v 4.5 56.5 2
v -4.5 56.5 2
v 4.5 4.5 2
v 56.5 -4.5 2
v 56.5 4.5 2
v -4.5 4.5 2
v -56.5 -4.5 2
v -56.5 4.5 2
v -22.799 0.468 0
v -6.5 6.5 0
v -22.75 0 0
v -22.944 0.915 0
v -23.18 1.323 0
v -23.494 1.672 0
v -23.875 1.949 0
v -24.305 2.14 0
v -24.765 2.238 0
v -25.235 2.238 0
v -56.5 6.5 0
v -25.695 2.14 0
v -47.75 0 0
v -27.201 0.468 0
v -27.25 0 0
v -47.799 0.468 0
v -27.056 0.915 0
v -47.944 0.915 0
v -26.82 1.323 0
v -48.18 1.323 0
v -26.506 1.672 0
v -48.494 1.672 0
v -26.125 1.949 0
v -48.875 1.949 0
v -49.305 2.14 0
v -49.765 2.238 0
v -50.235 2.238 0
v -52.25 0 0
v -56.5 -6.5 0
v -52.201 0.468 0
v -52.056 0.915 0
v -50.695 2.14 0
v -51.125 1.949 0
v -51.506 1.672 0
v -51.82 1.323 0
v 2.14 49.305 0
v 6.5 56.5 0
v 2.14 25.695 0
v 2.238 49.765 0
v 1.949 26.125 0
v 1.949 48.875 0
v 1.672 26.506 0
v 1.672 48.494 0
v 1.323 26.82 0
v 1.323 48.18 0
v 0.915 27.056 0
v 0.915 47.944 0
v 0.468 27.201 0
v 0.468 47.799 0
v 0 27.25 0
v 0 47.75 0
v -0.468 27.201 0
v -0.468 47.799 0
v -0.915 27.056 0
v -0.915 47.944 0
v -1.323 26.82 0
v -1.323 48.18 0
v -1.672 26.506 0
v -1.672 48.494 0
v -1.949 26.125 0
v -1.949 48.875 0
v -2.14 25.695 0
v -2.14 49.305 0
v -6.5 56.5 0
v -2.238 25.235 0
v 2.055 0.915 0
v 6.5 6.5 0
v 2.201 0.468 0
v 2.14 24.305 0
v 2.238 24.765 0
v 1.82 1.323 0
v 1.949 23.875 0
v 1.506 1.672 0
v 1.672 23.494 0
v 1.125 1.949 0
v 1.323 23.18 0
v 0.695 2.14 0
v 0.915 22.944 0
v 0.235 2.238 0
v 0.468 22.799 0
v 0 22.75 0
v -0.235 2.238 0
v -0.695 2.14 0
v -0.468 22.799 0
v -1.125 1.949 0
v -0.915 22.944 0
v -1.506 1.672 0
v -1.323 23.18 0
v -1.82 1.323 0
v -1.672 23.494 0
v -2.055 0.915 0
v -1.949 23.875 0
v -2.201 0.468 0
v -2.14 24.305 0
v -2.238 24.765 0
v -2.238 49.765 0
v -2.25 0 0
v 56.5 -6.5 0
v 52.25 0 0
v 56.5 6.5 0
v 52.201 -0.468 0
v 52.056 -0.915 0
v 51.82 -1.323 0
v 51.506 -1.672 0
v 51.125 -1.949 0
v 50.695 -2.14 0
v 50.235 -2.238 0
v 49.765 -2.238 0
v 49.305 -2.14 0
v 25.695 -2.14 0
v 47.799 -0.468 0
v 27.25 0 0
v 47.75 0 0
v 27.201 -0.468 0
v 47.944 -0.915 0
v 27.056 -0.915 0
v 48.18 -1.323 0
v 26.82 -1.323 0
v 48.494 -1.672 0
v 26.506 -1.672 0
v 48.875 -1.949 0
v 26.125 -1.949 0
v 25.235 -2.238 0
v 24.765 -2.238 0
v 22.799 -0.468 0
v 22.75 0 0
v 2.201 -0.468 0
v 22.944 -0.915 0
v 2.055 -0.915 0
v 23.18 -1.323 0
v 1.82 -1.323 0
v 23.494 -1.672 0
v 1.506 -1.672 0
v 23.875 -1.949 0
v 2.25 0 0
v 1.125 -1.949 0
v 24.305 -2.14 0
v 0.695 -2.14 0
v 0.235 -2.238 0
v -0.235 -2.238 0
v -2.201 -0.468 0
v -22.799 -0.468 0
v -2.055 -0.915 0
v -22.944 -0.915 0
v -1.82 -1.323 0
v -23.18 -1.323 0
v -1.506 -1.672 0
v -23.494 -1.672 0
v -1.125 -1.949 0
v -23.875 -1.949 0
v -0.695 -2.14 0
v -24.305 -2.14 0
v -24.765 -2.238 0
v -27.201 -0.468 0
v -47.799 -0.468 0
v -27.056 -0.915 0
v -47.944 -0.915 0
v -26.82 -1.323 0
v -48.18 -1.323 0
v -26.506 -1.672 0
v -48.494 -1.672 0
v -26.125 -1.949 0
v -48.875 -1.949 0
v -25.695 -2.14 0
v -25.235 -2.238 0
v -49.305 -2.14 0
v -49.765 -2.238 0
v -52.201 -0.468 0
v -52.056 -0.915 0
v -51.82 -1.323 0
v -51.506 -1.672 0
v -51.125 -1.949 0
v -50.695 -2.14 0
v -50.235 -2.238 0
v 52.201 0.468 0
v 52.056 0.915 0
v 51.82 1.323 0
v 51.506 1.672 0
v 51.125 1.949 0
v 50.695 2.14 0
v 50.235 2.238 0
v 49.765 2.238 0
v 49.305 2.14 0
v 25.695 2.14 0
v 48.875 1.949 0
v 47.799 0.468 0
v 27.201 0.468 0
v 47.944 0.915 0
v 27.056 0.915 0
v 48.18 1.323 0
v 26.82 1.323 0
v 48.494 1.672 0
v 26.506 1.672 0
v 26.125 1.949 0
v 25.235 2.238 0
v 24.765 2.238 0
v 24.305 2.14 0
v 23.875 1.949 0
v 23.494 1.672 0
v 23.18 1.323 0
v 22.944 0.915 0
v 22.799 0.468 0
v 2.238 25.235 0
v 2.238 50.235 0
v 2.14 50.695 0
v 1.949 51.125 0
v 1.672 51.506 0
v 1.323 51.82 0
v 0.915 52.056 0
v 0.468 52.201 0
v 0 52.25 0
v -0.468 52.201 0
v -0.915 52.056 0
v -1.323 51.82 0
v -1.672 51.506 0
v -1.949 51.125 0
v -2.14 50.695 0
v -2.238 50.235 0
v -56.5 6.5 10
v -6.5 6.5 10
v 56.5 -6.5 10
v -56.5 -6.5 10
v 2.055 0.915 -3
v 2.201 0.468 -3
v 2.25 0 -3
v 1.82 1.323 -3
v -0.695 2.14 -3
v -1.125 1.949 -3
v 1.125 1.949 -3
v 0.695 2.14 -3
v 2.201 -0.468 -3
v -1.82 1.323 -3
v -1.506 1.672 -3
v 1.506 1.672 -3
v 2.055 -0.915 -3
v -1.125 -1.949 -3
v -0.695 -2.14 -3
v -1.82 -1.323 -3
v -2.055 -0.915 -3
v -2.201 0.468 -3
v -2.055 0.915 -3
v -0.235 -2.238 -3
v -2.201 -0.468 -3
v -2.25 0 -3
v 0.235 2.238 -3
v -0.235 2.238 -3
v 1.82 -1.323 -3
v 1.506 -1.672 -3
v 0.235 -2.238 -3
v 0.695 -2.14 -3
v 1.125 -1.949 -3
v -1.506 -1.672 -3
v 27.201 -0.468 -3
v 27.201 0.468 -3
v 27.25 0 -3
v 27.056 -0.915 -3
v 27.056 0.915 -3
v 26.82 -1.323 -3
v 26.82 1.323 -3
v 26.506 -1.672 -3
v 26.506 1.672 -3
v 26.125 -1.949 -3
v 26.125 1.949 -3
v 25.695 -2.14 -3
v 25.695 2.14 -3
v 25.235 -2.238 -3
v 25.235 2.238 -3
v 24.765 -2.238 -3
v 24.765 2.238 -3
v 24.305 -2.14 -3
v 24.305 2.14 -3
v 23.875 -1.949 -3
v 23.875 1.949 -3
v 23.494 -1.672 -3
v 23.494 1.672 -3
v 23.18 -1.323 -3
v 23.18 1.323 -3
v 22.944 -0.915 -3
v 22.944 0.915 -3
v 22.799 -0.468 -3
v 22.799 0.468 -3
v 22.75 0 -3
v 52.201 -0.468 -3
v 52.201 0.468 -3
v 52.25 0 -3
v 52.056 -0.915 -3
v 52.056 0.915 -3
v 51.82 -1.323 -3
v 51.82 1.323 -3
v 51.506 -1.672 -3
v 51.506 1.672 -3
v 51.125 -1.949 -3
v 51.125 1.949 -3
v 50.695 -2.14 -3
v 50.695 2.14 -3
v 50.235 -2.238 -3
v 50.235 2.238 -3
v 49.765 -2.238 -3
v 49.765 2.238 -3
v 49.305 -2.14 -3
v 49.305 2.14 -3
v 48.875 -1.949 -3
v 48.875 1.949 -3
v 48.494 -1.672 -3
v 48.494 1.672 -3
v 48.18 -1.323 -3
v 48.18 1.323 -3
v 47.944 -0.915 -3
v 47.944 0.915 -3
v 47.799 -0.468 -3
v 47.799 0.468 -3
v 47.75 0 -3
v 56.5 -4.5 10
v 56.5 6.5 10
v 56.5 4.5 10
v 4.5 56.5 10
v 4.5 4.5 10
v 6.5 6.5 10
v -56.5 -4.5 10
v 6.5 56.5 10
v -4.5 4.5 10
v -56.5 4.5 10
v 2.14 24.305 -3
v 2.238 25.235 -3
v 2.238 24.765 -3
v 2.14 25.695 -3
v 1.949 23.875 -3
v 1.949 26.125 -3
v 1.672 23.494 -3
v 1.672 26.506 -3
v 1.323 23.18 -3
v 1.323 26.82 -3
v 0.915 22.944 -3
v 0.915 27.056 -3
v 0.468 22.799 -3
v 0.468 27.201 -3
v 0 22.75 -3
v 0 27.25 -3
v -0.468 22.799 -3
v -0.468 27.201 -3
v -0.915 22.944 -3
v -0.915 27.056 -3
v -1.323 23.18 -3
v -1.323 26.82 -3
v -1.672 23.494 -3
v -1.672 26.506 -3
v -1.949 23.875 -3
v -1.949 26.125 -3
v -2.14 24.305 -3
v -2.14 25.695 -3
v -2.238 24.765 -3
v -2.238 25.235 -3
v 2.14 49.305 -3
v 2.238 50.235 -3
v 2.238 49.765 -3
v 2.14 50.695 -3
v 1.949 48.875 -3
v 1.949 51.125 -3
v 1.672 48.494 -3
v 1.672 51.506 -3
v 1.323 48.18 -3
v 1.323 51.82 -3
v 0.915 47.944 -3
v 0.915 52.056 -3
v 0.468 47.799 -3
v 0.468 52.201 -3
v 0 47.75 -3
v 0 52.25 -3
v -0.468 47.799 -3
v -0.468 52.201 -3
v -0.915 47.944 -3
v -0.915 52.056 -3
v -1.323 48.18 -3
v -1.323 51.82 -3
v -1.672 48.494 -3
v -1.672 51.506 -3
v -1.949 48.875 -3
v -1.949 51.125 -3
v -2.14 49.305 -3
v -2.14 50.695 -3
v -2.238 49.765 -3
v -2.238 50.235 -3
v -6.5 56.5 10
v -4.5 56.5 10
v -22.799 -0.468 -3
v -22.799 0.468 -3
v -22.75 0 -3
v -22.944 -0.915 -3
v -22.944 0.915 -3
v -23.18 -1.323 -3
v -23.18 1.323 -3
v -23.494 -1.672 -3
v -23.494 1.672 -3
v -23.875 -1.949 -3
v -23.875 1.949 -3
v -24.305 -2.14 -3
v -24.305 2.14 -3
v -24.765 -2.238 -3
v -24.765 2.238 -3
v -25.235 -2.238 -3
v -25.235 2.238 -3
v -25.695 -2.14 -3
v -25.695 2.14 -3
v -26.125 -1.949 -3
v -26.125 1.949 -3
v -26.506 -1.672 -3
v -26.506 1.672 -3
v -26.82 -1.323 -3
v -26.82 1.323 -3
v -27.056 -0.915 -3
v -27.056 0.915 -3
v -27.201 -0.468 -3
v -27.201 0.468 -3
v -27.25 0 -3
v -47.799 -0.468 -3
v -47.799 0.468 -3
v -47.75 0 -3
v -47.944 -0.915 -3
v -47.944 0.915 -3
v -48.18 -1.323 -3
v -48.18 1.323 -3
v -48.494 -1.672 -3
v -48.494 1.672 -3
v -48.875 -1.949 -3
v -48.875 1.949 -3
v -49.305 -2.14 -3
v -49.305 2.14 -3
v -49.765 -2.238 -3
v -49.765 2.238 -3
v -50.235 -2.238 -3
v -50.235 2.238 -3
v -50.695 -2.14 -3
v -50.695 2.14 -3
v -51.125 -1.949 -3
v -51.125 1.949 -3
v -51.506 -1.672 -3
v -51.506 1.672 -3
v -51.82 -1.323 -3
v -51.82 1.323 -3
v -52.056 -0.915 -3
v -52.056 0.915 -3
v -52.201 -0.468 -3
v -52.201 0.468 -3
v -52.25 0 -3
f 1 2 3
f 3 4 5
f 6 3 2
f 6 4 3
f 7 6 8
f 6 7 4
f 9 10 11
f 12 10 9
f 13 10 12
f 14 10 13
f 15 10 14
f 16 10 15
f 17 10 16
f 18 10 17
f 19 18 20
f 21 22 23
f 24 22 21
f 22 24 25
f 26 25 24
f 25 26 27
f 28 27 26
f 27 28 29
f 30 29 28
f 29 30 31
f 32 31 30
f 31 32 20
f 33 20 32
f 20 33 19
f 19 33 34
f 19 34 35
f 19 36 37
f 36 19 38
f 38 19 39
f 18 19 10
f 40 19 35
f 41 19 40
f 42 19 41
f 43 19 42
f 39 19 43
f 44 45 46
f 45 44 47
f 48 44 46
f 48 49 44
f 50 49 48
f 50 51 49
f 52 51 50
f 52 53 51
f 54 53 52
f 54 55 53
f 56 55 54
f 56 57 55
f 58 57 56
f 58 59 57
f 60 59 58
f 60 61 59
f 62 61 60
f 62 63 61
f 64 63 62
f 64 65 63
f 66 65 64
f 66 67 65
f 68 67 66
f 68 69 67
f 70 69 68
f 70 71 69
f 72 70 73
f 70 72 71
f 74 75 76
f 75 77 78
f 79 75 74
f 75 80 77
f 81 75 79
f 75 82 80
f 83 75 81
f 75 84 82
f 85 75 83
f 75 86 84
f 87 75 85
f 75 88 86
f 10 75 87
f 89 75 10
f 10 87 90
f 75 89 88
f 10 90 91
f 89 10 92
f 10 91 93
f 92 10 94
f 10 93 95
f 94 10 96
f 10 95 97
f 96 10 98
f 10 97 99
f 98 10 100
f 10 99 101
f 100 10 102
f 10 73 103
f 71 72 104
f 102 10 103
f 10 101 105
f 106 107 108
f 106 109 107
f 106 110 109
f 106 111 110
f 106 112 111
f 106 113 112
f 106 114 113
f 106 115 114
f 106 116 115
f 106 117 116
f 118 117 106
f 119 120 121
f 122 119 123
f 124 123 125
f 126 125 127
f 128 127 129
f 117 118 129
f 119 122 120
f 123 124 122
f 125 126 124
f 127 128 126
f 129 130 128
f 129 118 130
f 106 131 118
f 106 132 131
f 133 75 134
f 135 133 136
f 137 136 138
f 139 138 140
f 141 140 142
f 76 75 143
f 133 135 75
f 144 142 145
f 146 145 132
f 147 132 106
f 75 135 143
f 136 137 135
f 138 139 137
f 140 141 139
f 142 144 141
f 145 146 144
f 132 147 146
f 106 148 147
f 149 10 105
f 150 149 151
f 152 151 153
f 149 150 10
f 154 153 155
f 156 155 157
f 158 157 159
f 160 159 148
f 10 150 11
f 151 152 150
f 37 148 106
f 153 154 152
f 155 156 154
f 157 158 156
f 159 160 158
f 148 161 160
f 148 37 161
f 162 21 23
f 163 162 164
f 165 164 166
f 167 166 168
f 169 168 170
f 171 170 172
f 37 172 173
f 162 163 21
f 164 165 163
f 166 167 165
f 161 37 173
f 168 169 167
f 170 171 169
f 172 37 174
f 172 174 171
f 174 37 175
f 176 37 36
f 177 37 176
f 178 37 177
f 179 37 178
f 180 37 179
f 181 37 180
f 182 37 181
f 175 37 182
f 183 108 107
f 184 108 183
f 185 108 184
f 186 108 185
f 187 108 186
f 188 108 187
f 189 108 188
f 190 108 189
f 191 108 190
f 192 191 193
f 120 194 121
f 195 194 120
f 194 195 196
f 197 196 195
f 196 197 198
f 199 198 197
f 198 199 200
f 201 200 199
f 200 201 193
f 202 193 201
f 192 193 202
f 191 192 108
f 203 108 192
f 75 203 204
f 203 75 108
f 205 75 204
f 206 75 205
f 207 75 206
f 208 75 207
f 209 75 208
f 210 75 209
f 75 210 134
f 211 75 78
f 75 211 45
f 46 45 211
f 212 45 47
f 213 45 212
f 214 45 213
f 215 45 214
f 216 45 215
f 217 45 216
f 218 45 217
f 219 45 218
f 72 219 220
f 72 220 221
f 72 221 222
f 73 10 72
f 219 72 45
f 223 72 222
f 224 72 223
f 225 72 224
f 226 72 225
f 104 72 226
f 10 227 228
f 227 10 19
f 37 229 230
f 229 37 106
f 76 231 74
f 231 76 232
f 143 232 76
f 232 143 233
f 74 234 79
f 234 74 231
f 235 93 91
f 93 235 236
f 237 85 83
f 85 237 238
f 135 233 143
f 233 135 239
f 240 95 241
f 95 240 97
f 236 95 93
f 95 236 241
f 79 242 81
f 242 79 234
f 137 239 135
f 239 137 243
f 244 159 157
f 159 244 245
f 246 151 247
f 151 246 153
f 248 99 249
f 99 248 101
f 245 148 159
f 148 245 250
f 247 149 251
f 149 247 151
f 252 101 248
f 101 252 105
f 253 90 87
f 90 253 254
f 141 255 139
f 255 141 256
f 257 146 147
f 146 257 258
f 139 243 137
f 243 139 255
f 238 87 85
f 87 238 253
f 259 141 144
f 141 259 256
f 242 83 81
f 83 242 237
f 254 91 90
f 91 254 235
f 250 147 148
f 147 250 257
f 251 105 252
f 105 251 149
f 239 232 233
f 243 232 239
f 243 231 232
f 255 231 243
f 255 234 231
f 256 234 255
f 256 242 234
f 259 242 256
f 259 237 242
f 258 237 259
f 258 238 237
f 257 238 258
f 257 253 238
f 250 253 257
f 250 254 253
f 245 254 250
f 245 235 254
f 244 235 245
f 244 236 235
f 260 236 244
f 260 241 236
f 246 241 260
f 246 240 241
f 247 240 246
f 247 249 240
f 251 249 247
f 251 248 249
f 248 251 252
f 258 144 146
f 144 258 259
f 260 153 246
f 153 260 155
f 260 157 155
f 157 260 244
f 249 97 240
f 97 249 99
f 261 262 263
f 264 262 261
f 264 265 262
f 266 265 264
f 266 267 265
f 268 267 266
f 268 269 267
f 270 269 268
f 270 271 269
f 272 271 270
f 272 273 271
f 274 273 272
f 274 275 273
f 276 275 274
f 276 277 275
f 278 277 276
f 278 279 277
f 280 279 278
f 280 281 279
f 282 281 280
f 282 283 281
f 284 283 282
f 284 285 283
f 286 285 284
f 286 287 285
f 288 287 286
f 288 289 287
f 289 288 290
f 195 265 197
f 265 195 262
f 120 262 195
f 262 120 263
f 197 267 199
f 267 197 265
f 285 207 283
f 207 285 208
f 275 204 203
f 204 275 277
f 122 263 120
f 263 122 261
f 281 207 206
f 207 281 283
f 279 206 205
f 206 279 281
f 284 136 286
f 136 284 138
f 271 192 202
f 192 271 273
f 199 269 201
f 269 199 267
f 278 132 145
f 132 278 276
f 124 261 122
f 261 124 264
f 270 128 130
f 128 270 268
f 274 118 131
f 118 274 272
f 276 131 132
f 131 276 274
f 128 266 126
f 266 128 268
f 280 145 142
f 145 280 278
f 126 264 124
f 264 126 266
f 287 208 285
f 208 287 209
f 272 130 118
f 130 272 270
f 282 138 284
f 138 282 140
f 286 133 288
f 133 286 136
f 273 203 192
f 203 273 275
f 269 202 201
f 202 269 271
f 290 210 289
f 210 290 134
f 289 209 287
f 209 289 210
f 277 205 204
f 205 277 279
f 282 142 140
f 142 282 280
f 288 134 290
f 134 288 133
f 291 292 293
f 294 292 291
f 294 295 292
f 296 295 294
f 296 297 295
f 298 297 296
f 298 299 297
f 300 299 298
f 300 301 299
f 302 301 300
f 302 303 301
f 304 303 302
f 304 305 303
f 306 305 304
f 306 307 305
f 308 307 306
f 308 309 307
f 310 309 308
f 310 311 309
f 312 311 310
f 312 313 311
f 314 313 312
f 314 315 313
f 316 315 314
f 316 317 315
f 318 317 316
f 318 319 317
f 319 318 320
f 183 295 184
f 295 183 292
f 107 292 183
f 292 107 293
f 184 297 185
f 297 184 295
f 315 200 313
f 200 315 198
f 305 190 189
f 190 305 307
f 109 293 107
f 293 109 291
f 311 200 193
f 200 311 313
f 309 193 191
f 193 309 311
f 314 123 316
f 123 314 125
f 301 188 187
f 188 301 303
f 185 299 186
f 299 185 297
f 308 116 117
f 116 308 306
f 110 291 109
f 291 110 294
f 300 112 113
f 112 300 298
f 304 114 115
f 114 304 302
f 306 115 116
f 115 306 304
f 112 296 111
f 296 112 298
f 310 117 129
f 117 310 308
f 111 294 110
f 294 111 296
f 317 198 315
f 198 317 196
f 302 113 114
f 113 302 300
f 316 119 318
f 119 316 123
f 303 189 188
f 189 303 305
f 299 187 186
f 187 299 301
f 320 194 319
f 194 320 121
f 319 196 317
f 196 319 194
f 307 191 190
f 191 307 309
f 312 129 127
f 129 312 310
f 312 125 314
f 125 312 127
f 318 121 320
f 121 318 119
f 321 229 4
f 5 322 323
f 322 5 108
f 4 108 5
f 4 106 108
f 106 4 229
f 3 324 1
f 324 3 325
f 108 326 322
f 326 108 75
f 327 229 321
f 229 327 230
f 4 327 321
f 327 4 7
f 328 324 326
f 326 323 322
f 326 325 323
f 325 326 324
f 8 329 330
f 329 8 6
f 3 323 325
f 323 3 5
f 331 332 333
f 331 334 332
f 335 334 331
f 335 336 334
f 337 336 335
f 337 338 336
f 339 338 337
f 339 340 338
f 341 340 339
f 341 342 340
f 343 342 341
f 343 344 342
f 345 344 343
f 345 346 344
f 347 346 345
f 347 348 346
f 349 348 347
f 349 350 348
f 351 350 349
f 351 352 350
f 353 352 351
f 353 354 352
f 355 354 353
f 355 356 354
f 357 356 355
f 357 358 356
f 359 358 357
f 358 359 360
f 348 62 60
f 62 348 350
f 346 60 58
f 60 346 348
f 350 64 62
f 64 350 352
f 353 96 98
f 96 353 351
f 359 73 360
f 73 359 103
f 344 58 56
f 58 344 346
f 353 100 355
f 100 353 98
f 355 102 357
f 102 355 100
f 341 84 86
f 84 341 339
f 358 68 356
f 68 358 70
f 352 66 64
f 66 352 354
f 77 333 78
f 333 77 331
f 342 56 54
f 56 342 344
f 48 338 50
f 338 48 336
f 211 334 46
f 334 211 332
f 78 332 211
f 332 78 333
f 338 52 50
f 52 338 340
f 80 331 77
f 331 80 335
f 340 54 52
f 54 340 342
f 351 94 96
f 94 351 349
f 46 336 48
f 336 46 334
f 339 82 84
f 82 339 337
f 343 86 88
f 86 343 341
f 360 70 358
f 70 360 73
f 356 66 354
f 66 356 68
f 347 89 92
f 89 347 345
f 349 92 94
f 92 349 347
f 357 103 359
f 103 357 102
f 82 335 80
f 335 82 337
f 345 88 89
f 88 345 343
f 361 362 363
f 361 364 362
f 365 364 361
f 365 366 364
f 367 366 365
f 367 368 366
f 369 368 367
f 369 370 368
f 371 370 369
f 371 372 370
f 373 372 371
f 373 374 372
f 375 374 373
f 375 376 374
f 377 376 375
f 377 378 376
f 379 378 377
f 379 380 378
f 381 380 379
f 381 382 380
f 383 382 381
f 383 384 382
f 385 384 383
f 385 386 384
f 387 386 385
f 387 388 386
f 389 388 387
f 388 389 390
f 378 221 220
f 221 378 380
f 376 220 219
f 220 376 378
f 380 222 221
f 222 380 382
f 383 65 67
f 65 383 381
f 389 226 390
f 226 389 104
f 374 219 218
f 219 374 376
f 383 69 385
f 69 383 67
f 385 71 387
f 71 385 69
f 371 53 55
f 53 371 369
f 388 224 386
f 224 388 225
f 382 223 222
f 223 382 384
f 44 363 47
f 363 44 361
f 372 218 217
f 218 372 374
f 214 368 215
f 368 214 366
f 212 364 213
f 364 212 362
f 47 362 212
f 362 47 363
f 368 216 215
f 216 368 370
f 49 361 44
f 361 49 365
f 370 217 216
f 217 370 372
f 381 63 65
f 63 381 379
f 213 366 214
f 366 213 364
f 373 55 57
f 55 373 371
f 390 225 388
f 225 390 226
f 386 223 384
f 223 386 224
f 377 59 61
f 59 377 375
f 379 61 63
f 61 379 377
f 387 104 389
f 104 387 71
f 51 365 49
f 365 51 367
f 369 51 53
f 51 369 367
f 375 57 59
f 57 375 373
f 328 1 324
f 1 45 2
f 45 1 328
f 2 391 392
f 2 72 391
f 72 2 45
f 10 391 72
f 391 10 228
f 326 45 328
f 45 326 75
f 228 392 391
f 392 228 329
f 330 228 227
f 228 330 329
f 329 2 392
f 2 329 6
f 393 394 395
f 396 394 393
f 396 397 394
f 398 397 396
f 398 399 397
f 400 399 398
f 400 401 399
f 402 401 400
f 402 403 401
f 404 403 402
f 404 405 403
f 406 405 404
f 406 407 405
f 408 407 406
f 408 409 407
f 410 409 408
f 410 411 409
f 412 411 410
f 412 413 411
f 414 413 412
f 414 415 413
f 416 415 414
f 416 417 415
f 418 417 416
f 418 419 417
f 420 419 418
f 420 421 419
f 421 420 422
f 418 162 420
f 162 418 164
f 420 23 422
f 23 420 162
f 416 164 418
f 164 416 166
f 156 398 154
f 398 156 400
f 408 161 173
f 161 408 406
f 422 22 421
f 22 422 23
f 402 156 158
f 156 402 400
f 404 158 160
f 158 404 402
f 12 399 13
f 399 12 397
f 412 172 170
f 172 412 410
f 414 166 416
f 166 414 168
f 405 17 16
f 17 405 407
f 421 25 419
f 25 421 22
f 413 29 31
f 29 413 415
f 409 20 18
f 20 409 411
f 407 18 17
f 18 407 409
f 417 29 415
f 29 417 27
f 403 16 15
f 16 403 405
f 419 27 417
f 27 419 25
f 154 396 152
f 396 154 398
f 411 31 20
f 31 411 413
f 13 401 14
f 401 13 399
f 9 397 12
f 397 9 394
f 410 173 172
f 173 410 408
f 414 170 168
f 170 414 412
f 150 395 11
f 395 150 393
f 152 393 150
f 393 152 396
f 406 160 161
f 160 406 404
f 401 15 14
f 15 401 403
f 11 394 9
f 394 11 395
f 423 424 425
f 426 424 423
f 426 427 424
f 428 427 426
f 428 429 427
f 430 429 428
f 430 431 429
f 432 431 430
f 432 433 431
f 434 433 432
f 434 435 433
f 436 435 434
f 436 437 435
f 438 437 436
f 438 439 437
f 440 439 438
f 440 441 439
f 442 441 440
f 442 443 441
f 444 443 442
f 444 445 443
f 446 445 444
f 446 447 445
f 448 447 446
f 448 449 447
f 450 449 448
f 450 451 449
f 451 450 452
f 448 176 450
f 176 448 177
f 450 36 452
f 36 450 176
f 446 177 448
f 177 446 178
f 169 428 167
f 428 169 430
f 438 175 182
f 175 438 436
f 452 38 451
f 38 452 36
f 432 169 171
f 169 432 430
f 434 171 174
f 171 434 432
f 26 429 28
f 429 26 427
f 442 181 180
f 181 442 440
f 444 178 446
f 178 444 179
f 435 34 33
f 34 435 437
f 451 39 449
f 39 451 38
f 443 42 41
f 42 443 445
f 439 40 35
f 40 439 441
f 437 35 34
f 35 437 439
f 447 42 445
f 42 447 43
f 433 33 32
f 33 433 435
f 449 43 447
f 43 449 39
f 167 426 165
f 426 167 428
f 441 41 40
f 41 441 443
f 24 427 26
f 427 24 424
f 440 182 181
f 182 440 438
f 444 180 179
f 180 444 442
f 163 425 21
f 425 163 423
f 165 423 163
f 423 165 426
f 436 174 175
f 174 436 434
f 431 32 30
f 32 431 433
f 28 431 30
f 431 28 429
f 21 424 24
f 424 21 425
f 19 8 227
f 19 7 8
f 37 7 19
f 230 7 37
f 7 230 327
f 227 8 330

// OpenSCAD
// file: common.scad
CENTER_SIZE = 9;
SLEEVE_REACH = 56.5;
GROOVE_WIDTH = 9;
WALL_HEIGHT = 10;
WALL_THICKNESS = 2;
BASE_THICKNESS = 2;
TOTAL_WIDTH = GROOVE_WIDTH + 2 * WALL_THICKNESS;
SLEEVE_LENGTH = SLEEVE_REACH - CENTER_SIZE/2;
DOWEL_DIAMETER = 4.5;
DOWEL_DEPTH = 3;
CARDBOARD_THICKNESS = 2;
GROOVE_BOTTOM = CARDBOARD_THICKNESS;
CURVE_POWER = 2;
CURVE_POINTS = 20;
TILT_ANGLE_EXTRA = 5;
FLEXIBLE_WALL_HEIGHT = WALL_HEIGHT * 2;
function wall_curve(z) =
    GROOVE_BOTTOM/2 + (GROOVE_WIDTH/2 - GROOVE_BOTTOM/2) * pow(z/(FLEXIBLE_WALL_HEIGHT - BASE_THICKNESS), CURVE_POWER);
module curved_wall_profile(side) {
    wall_h = FLEXIBLE_WALL_HEIGHT - BASE_THICKNESS;
    points_inner = [for (i = [0:CURVE_POINTS])
        [wall_curve(i * wall_h / CURVE_POINTS) * side,
         i * wall_h / CURVE_POINTS]
    ];
    points_outer = [for (i = [0:CURVE_POINTS])
        [(wall_curve(i * wall_h / CURVE_POINTS) + WALL_THICKNESS) * side,
         i * wall_h / CURVE_POINTS]
    ];
    all_points = concat(
        [[points_inner[0][0], 0]],
        points_inner,
        [points_outer[len(points_outer)-1]],
        [for (i = [len(points_outer)-1:-1:0]) points_outer[i]],
        [[points_outer[0][0], 0]]
    );
    polygon(all_points);
}
module draw_regular_wall_base(width) {
    translate([0, 0, BASE_THICKNESS])
        cube([width, WALL_THICKNESS, WALL_HEIGHT - BASE_THICKNESS]);
}
module draw_flexible_wall_base(width) {
    tilt_angle = atan((GROOVE_WIDTH/2 - GROOVE_BOTTOM/2) / (FLEXIBLE_WALL_HEIGHT - BASE_THICKNESS)) + TILT_ANGLE_EXTRA;
    rotate([0, 0, 90])
        rotate([tilt_angle + 6, 0, 0])
            rotate([90, 0, 90])
                linear_extrude(height = width)
                    curved_wall_profile(1);
}
module draw_center_base(with_dowel = false) {
    union() {
        translate([-TOTAL_WIDTH/2, -TOTAL_WIDTH/2, 0])
            cube([TOTAL_WIDTH, TOTAL_WIDTH, BASE_THICKNESS]);
        if (with_dowel) {
            translate([0, 0, -DOWEL_DEPTH])
                cylinder(h=DOWEL_DEPTH, d=DOWEL_DIAMETER, $fn=30);
        }
    }
}
module place_regular_center_wall(side) {
    if (side == 0) {
        translate([CENTER_SIZE/2 + WALL_THICKNESS, -TOTAL_WIDTH/2, 0])
            rotate([0, 0, 90])
                draw_regular_wall_base(TOTAL_WIDTH);
    } else if (side == 1) {
        translate([-TOTAL_WIDTH/2, CENTER_SIZE/2, 0])
            draw_regular_wall_base(TOTAL_WIDTH);
    } else if (side == 2) {
        translate([-CENTER_SIZE/2, -TOTAL_WIDTH/2, 0])
            rotate([0, 0, 90])
                draw_regular_wall_base(TOTAL_WIDTH);
    } else if (side == 3) {
        translate([-TOTAL_WIDTH/2, -CENTER_SIZE/2 - WALL_THICKNESS, 0])
            draw_regular_wall_base(TOTAL_WIDTH);
    }
}
module place_flexible_center_wall(side) {
    if (side == 0) {
        translate([CENTER_SIZE/2 - WALL_THICKNESS/2, TOTAL_WIDTH/2, 0])
            rotate([0, 0, 180])
                draw_flexible_wall_base(TOTAL_WIDTH);
    } else if (side == 1) {
        translate([-TOTAL_WIDTH/2, CENTER_SIZE/2 - WALL_THICKNESS/2, 0])
            rotate([0, 0, 270])
                draw_flexible_wall_base(TOTAL_WIDTH);
    } else if (side == 2) {
        translate([-CENTER_SIZE/2 + WALL_THICKNESS/2, -TOTAL_WIDTH/2, 0])
            draw_flexible_wall_base(TOTAL_WIDTH);
    } else if (side == 3) {
        translate([CENTER_SIZE/2 + WALL_THICKNESS, -TOTAL_WIDTH/2 + WALL_THICKNESS + WALL_THICKNESS/2, 0])
            rotate([0, 0, 90])
                draw_flexible_wall_base(TOTAL_WIDTH);
    }
}
module place_center_wall(side, wall_type = "regular") {
    if (wall_type == "regular") {
        place_regular_center_wall(side);
    } else if (wall_type == "flexible") {
        place_flexible_center_wall(side);
    }
}
module draw_sleeve_base(with_dowel = false) {
    union() {
        translate([0, -TOTAL_WIDTH/2, 0])
            cube([SLEEVE_LENGTH, TOTAL_WIDTH, BASE_THICKNESS]);
        if (with_dowel) {
            translate([25 - CENTER_SIZE/2, 0, -DOWEL_DEPTH])
                cylinder(h=DOWEL_DEPTH, d=DOWEL_DIAMETER, $fn=30);
            translate([50 - CENTER_SIZE/2, 0, -DOWEL_DEPTH])
                cylinder(h=DOWEL_DEPTH, d=DOWEL_DIAMETER, $fn=30);
        }
    }
}
module draw_regular_sleeve_wall(wall_side) {
    y_offset = (wall_side == "left") ? -TOTAL_WIDTH/2 : TOTAL_WIDTH/2 - WALL_THICKNESS;
    translate([0, y_offset, 0])
        draw_regular_wall_base(SLEEVE_LENGTH);
}
module draw_flexible_sleeve_wall(side) {
    if (side == "left") {
        translate([0, TOTAL_WIDTH/2 - WALL_THICKNESS/2 - WALL_THICKNESS, 0])
            rotate([0, 0, 270])
                draw_flexible_wall_base(SLEEVE_LENGTH);
    } else if (side == "right") {
        translate([SLEEVE_LENGTH, -TOTAL_WIDTH/2 + WALL_THICKNESS + WALL_THICKNESS/2, 0])
            rotate([0, 0, 90])
                draw_flexible_wall_base(SLEEVE_LENGTH);
    }
}
module draw_sleeve_wall(wall_side, wall_type = "regular") {
    if (wall_type == "regular") {
        draw_regular_sleeve_wall(wall_side);
    } else if (wall_type == "flexible") {
        draw_flexible_sleeve_wall(wall_side);
    }
}
module draw_full_sleeve(with_dowel = false, wall_type = "regular") {
    union() {
        draw_sleeve_base(with_dowel);
        draw_sleeve_wall("left", wall_type);
        draw_sleeve_wall("right", wall_type);
    }
}
module place_sleeve(side, with_dowel = false, wall_type = "regular") {
    if (side == 0) {
        translate([CENTER_SIZE/2, 0, 0])
            draw_full_sleeve(with_dowel, wall_type);
    } else if (side == 1) {
        rotate([0, 0, 90])
            translate([CENTER_SIZE/2, 0, 0])
                draw_full_sleeve(with_dowel, wall_type);
    } else if (side == 2) {
        rotate([0, 0, 180])
            translate([CENTER_SIZE/2, 0, 0])
                draw_full_sleeve(with_dowel, wall_type);
    } else if (side == 3) {
        rotate([0, 0, 270])
            translate([CENTER_SIZE/2, 0, 0])
                draw_full_sleeve(with_dowel, wall_type);
    }
}
module add_dowel(x, y, dowel_diameter, dowel_depth) {
    translate([x, y, -dowel_depth])
        cylinder(h=dowel_depth, d=dowel_diameter, $fn=30);
}
// main file
use <common.scad>

union() {
    draw_center_base(with_dowel = true);
    place_center_wall(3);
    place_sleeve(0, with_dowel = true);
    place_sleeve(1, with_dowel = true);
    place_sleeve(2, with_dowel = true);
}
